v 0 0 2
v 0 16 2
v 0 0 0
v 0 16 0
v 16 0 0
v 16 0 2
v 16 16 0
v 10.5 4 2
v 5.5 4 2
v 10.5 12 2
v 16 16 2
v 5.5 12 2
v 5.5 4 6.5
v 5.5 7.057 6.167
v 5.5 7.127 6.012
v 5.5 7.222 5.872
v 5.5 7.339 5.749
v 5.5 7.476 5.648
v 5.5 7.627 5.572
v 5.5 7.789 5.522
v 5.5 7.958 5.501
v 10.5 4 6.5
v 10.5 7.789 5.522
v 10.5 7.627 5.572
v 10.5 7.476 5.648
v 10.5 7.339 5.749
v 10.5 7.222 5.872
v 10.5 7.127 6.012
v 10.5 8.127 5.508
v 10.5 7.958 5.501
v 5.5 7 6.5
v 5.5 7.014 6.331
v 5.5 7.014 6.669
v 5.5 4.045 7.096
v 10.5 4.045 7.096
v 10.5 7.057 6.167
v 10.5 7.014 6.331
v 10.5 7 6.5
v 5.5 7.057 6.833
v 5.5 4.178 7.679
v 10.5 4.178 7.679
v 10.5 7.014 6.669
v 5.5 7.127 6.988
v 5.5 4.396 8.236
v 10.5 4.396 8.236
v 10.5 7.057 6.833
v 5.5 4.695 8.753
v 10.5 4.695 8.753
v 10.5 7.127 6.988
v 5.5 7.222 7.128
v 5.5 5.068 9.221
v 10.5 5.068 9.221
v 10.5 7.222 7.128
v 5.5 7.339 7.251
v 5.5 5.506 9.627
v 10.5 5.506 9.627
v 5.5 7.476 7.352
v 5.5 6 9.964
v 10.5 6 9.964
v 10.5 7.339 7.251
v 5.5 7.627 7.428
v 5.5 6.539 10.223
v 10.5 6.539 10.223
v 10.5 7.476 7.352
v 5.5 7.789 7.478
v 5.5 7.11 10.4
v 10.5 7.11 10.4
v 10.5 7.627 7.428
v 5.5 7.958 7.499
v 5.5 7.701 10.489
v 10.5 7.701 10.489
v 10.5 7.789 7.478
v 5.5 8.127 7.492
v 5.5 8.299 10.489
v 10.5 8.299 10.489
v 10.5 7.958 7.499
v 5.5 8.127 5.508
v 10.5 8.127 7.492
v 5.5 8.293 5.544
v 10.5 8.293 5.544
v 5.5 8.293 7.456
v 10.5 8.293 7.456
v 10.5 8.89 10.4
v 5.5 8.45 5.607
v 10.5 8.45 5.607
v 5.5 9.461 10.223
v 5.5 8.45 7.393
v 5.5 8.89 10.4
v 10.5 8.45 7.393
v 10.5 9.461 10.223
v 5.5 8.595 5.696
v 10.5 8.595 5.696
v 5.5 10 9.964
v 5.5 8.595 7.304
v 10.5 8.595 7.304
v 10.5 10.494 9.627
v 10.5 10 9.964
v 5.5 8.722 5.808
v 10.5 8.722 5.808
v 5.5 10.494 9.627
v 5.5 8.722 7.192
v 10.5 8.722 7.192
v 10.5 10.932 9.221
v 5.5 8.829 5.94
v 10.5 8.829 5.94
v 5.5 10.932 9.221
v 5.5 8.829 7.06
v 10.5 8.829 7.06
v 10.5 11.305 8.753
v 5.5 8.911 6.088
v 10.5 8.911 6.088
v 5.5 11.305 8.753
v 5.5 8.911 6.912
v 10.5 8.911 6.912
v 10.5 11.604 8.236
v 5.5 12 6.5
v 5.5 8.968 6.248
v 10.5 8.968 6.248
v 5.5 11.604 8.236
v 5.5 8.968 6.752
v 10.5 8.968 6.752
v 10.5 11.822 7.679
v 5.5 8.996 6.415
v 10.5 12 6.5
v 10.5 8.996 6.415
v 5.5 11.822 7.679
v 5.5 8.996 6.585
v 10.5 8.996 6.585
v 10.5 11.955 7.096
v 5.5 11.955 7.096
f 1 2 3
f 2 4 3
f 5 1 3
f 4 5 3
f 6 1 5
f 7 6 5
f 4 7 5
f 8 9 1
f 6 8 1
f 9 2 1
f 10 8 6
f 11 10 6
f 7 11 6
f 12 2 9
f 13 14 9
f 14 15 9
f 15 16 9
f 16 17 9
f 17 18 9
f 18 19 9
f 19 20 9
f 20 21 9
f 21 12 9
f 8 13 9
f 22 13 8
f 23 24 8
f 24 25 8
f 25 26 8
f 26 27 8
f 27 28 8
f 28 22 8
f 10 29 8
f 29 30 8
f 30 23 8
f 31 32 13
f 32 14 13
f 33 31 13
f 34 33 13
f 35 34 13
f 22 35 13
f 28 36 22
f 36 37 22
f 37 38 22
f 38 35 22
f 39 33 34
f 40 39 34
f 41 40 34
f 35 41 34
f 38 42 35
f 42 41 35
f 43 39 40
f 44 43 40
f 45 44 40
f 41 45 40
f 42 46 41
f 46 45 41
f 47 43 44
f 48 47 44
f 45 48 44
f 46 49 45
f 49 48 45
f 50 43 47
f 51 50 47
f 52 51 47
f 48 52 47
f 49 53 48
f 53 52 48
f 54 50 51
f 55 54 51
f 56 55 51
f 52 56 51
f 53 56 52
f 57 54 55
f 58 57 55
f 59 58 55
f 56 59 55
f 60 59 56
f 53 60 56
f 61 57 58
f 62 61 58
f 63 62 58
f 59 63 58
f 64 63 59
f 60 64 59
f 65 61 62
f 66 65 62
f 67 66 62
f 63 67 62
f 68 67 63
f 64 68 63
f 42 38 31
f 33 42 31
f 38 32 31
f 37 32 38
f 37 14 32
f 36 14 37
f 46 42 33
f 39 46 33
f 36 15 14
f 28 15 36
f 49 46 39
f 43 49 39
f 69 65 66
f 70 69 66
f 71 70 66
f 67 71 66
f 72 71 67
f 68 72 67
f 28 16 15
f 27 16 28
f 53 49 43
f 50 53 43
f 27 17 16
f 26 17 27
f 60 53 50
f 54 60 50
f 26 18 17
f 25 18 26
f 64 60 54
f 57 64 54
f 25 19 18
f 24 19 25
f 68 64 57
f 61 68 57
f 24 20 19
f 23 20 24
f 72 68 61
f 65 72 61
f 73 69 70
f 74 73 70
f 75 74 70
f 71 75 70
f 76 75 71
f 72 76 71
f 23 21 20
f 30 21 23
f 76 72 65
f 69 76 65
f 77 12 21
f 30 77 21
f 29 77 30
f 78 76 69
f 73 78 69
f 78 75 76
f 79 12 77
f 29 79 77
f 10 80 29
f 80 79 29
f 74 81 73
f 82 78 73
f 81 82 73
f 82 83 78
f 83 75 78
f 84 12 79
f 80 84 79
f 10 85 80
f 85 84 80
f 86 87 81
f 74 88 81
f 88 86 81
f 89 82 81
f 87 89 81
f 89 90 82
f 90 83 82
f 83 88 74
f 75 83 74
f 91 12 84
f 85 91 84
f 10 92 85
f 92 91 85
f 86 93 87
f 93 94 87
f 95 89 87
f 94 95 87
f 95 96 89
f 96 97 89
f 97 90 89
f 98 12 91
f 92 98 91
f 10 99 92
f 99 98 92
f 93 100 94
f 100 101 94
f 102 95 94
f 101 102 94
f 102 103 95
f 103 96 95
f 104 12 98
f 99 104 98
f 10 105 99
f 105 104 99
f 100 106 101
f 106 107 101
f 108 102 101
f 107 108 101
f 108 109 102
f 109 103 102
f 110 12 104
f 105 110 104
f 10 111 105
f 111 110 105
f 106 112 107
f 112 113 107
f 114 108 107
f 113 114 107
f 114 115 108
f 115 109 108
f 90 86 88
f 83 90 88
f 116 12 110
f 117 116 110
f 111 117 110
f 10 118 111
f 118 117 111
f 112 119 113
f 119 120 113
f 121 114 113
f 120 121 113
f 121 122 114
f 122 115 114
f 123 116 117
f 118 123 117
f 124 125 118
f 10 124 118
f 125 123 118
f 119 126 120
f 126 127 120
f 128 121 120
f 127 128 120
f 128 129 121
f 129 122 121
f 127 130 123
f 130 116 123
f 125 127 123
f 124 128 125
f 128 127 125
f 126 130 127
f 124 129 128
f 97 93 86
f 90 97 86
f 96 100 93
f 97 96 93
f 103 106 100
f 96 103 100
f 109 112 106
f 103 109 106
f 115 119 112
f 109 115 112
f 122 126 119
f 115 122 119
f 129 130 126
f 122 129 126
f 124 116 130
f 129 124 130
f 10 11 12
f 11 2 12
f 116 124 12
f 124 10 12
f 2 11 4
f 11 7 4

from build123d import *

# Parameters (mm, degrees)
SKETCH_1_W          = 16
SKETCH_1_H          = 16
EXTRUDE_1_DEPTH     = 2
SKETCH_2_W          = 5
SKETCH_2_H          = 8
EXTRUDE_2_DEPTH     = 4.5
SKETCH_3_R          = 4
EXTRUDE_3_DEPTH     = 5
SKETCH_4_R          = 1
CUT_EXTRUDE_1_DEPTH = 10


with BuildPart() as part:
    # 草图1 → 凸台-拉伸1 (new body)
    with BuildSketch(Plane.XY):
        with Locations((8, 8)):
            Rectangle(SKETCH_1_W, SKETCH_1_H)
    extrude(amount=EXTRUDE_1_DEPTH)

    # 草图2 → 凸台-拉伸2 (add)
    with BuildSketch(Plane.XY.offset(2)):
        with Locations((8, 8)):
            Rectangle(SKETCH_2_W, SKETCH_2_H)
    extrude(amount=EXTRUDE_2_DEPTH)

    # 草图3 → 凸台-拉伸3 (add)
    with BuildSketch(Plane.ZY.offset(-5.5)):
        with Locations((6.5, 8)):
            Circle(SKETCH_3_R)
    extrude(amount=-EXTRUDE_3_DEPTH)

    # 草图4 → 切除-拉伸1 (cut)
    with BuildSketch(Plane.ZY.offset(-5.5)):
        with Locations(Location((6.5, 8, 0), (0, 0, 270))):
            Circle(SKETCH_4_R)
    extrude(amount=-CUT_EXTRUDE_1_DEPTH, mode=Mode.SUBTRACT)


solid = part.part
